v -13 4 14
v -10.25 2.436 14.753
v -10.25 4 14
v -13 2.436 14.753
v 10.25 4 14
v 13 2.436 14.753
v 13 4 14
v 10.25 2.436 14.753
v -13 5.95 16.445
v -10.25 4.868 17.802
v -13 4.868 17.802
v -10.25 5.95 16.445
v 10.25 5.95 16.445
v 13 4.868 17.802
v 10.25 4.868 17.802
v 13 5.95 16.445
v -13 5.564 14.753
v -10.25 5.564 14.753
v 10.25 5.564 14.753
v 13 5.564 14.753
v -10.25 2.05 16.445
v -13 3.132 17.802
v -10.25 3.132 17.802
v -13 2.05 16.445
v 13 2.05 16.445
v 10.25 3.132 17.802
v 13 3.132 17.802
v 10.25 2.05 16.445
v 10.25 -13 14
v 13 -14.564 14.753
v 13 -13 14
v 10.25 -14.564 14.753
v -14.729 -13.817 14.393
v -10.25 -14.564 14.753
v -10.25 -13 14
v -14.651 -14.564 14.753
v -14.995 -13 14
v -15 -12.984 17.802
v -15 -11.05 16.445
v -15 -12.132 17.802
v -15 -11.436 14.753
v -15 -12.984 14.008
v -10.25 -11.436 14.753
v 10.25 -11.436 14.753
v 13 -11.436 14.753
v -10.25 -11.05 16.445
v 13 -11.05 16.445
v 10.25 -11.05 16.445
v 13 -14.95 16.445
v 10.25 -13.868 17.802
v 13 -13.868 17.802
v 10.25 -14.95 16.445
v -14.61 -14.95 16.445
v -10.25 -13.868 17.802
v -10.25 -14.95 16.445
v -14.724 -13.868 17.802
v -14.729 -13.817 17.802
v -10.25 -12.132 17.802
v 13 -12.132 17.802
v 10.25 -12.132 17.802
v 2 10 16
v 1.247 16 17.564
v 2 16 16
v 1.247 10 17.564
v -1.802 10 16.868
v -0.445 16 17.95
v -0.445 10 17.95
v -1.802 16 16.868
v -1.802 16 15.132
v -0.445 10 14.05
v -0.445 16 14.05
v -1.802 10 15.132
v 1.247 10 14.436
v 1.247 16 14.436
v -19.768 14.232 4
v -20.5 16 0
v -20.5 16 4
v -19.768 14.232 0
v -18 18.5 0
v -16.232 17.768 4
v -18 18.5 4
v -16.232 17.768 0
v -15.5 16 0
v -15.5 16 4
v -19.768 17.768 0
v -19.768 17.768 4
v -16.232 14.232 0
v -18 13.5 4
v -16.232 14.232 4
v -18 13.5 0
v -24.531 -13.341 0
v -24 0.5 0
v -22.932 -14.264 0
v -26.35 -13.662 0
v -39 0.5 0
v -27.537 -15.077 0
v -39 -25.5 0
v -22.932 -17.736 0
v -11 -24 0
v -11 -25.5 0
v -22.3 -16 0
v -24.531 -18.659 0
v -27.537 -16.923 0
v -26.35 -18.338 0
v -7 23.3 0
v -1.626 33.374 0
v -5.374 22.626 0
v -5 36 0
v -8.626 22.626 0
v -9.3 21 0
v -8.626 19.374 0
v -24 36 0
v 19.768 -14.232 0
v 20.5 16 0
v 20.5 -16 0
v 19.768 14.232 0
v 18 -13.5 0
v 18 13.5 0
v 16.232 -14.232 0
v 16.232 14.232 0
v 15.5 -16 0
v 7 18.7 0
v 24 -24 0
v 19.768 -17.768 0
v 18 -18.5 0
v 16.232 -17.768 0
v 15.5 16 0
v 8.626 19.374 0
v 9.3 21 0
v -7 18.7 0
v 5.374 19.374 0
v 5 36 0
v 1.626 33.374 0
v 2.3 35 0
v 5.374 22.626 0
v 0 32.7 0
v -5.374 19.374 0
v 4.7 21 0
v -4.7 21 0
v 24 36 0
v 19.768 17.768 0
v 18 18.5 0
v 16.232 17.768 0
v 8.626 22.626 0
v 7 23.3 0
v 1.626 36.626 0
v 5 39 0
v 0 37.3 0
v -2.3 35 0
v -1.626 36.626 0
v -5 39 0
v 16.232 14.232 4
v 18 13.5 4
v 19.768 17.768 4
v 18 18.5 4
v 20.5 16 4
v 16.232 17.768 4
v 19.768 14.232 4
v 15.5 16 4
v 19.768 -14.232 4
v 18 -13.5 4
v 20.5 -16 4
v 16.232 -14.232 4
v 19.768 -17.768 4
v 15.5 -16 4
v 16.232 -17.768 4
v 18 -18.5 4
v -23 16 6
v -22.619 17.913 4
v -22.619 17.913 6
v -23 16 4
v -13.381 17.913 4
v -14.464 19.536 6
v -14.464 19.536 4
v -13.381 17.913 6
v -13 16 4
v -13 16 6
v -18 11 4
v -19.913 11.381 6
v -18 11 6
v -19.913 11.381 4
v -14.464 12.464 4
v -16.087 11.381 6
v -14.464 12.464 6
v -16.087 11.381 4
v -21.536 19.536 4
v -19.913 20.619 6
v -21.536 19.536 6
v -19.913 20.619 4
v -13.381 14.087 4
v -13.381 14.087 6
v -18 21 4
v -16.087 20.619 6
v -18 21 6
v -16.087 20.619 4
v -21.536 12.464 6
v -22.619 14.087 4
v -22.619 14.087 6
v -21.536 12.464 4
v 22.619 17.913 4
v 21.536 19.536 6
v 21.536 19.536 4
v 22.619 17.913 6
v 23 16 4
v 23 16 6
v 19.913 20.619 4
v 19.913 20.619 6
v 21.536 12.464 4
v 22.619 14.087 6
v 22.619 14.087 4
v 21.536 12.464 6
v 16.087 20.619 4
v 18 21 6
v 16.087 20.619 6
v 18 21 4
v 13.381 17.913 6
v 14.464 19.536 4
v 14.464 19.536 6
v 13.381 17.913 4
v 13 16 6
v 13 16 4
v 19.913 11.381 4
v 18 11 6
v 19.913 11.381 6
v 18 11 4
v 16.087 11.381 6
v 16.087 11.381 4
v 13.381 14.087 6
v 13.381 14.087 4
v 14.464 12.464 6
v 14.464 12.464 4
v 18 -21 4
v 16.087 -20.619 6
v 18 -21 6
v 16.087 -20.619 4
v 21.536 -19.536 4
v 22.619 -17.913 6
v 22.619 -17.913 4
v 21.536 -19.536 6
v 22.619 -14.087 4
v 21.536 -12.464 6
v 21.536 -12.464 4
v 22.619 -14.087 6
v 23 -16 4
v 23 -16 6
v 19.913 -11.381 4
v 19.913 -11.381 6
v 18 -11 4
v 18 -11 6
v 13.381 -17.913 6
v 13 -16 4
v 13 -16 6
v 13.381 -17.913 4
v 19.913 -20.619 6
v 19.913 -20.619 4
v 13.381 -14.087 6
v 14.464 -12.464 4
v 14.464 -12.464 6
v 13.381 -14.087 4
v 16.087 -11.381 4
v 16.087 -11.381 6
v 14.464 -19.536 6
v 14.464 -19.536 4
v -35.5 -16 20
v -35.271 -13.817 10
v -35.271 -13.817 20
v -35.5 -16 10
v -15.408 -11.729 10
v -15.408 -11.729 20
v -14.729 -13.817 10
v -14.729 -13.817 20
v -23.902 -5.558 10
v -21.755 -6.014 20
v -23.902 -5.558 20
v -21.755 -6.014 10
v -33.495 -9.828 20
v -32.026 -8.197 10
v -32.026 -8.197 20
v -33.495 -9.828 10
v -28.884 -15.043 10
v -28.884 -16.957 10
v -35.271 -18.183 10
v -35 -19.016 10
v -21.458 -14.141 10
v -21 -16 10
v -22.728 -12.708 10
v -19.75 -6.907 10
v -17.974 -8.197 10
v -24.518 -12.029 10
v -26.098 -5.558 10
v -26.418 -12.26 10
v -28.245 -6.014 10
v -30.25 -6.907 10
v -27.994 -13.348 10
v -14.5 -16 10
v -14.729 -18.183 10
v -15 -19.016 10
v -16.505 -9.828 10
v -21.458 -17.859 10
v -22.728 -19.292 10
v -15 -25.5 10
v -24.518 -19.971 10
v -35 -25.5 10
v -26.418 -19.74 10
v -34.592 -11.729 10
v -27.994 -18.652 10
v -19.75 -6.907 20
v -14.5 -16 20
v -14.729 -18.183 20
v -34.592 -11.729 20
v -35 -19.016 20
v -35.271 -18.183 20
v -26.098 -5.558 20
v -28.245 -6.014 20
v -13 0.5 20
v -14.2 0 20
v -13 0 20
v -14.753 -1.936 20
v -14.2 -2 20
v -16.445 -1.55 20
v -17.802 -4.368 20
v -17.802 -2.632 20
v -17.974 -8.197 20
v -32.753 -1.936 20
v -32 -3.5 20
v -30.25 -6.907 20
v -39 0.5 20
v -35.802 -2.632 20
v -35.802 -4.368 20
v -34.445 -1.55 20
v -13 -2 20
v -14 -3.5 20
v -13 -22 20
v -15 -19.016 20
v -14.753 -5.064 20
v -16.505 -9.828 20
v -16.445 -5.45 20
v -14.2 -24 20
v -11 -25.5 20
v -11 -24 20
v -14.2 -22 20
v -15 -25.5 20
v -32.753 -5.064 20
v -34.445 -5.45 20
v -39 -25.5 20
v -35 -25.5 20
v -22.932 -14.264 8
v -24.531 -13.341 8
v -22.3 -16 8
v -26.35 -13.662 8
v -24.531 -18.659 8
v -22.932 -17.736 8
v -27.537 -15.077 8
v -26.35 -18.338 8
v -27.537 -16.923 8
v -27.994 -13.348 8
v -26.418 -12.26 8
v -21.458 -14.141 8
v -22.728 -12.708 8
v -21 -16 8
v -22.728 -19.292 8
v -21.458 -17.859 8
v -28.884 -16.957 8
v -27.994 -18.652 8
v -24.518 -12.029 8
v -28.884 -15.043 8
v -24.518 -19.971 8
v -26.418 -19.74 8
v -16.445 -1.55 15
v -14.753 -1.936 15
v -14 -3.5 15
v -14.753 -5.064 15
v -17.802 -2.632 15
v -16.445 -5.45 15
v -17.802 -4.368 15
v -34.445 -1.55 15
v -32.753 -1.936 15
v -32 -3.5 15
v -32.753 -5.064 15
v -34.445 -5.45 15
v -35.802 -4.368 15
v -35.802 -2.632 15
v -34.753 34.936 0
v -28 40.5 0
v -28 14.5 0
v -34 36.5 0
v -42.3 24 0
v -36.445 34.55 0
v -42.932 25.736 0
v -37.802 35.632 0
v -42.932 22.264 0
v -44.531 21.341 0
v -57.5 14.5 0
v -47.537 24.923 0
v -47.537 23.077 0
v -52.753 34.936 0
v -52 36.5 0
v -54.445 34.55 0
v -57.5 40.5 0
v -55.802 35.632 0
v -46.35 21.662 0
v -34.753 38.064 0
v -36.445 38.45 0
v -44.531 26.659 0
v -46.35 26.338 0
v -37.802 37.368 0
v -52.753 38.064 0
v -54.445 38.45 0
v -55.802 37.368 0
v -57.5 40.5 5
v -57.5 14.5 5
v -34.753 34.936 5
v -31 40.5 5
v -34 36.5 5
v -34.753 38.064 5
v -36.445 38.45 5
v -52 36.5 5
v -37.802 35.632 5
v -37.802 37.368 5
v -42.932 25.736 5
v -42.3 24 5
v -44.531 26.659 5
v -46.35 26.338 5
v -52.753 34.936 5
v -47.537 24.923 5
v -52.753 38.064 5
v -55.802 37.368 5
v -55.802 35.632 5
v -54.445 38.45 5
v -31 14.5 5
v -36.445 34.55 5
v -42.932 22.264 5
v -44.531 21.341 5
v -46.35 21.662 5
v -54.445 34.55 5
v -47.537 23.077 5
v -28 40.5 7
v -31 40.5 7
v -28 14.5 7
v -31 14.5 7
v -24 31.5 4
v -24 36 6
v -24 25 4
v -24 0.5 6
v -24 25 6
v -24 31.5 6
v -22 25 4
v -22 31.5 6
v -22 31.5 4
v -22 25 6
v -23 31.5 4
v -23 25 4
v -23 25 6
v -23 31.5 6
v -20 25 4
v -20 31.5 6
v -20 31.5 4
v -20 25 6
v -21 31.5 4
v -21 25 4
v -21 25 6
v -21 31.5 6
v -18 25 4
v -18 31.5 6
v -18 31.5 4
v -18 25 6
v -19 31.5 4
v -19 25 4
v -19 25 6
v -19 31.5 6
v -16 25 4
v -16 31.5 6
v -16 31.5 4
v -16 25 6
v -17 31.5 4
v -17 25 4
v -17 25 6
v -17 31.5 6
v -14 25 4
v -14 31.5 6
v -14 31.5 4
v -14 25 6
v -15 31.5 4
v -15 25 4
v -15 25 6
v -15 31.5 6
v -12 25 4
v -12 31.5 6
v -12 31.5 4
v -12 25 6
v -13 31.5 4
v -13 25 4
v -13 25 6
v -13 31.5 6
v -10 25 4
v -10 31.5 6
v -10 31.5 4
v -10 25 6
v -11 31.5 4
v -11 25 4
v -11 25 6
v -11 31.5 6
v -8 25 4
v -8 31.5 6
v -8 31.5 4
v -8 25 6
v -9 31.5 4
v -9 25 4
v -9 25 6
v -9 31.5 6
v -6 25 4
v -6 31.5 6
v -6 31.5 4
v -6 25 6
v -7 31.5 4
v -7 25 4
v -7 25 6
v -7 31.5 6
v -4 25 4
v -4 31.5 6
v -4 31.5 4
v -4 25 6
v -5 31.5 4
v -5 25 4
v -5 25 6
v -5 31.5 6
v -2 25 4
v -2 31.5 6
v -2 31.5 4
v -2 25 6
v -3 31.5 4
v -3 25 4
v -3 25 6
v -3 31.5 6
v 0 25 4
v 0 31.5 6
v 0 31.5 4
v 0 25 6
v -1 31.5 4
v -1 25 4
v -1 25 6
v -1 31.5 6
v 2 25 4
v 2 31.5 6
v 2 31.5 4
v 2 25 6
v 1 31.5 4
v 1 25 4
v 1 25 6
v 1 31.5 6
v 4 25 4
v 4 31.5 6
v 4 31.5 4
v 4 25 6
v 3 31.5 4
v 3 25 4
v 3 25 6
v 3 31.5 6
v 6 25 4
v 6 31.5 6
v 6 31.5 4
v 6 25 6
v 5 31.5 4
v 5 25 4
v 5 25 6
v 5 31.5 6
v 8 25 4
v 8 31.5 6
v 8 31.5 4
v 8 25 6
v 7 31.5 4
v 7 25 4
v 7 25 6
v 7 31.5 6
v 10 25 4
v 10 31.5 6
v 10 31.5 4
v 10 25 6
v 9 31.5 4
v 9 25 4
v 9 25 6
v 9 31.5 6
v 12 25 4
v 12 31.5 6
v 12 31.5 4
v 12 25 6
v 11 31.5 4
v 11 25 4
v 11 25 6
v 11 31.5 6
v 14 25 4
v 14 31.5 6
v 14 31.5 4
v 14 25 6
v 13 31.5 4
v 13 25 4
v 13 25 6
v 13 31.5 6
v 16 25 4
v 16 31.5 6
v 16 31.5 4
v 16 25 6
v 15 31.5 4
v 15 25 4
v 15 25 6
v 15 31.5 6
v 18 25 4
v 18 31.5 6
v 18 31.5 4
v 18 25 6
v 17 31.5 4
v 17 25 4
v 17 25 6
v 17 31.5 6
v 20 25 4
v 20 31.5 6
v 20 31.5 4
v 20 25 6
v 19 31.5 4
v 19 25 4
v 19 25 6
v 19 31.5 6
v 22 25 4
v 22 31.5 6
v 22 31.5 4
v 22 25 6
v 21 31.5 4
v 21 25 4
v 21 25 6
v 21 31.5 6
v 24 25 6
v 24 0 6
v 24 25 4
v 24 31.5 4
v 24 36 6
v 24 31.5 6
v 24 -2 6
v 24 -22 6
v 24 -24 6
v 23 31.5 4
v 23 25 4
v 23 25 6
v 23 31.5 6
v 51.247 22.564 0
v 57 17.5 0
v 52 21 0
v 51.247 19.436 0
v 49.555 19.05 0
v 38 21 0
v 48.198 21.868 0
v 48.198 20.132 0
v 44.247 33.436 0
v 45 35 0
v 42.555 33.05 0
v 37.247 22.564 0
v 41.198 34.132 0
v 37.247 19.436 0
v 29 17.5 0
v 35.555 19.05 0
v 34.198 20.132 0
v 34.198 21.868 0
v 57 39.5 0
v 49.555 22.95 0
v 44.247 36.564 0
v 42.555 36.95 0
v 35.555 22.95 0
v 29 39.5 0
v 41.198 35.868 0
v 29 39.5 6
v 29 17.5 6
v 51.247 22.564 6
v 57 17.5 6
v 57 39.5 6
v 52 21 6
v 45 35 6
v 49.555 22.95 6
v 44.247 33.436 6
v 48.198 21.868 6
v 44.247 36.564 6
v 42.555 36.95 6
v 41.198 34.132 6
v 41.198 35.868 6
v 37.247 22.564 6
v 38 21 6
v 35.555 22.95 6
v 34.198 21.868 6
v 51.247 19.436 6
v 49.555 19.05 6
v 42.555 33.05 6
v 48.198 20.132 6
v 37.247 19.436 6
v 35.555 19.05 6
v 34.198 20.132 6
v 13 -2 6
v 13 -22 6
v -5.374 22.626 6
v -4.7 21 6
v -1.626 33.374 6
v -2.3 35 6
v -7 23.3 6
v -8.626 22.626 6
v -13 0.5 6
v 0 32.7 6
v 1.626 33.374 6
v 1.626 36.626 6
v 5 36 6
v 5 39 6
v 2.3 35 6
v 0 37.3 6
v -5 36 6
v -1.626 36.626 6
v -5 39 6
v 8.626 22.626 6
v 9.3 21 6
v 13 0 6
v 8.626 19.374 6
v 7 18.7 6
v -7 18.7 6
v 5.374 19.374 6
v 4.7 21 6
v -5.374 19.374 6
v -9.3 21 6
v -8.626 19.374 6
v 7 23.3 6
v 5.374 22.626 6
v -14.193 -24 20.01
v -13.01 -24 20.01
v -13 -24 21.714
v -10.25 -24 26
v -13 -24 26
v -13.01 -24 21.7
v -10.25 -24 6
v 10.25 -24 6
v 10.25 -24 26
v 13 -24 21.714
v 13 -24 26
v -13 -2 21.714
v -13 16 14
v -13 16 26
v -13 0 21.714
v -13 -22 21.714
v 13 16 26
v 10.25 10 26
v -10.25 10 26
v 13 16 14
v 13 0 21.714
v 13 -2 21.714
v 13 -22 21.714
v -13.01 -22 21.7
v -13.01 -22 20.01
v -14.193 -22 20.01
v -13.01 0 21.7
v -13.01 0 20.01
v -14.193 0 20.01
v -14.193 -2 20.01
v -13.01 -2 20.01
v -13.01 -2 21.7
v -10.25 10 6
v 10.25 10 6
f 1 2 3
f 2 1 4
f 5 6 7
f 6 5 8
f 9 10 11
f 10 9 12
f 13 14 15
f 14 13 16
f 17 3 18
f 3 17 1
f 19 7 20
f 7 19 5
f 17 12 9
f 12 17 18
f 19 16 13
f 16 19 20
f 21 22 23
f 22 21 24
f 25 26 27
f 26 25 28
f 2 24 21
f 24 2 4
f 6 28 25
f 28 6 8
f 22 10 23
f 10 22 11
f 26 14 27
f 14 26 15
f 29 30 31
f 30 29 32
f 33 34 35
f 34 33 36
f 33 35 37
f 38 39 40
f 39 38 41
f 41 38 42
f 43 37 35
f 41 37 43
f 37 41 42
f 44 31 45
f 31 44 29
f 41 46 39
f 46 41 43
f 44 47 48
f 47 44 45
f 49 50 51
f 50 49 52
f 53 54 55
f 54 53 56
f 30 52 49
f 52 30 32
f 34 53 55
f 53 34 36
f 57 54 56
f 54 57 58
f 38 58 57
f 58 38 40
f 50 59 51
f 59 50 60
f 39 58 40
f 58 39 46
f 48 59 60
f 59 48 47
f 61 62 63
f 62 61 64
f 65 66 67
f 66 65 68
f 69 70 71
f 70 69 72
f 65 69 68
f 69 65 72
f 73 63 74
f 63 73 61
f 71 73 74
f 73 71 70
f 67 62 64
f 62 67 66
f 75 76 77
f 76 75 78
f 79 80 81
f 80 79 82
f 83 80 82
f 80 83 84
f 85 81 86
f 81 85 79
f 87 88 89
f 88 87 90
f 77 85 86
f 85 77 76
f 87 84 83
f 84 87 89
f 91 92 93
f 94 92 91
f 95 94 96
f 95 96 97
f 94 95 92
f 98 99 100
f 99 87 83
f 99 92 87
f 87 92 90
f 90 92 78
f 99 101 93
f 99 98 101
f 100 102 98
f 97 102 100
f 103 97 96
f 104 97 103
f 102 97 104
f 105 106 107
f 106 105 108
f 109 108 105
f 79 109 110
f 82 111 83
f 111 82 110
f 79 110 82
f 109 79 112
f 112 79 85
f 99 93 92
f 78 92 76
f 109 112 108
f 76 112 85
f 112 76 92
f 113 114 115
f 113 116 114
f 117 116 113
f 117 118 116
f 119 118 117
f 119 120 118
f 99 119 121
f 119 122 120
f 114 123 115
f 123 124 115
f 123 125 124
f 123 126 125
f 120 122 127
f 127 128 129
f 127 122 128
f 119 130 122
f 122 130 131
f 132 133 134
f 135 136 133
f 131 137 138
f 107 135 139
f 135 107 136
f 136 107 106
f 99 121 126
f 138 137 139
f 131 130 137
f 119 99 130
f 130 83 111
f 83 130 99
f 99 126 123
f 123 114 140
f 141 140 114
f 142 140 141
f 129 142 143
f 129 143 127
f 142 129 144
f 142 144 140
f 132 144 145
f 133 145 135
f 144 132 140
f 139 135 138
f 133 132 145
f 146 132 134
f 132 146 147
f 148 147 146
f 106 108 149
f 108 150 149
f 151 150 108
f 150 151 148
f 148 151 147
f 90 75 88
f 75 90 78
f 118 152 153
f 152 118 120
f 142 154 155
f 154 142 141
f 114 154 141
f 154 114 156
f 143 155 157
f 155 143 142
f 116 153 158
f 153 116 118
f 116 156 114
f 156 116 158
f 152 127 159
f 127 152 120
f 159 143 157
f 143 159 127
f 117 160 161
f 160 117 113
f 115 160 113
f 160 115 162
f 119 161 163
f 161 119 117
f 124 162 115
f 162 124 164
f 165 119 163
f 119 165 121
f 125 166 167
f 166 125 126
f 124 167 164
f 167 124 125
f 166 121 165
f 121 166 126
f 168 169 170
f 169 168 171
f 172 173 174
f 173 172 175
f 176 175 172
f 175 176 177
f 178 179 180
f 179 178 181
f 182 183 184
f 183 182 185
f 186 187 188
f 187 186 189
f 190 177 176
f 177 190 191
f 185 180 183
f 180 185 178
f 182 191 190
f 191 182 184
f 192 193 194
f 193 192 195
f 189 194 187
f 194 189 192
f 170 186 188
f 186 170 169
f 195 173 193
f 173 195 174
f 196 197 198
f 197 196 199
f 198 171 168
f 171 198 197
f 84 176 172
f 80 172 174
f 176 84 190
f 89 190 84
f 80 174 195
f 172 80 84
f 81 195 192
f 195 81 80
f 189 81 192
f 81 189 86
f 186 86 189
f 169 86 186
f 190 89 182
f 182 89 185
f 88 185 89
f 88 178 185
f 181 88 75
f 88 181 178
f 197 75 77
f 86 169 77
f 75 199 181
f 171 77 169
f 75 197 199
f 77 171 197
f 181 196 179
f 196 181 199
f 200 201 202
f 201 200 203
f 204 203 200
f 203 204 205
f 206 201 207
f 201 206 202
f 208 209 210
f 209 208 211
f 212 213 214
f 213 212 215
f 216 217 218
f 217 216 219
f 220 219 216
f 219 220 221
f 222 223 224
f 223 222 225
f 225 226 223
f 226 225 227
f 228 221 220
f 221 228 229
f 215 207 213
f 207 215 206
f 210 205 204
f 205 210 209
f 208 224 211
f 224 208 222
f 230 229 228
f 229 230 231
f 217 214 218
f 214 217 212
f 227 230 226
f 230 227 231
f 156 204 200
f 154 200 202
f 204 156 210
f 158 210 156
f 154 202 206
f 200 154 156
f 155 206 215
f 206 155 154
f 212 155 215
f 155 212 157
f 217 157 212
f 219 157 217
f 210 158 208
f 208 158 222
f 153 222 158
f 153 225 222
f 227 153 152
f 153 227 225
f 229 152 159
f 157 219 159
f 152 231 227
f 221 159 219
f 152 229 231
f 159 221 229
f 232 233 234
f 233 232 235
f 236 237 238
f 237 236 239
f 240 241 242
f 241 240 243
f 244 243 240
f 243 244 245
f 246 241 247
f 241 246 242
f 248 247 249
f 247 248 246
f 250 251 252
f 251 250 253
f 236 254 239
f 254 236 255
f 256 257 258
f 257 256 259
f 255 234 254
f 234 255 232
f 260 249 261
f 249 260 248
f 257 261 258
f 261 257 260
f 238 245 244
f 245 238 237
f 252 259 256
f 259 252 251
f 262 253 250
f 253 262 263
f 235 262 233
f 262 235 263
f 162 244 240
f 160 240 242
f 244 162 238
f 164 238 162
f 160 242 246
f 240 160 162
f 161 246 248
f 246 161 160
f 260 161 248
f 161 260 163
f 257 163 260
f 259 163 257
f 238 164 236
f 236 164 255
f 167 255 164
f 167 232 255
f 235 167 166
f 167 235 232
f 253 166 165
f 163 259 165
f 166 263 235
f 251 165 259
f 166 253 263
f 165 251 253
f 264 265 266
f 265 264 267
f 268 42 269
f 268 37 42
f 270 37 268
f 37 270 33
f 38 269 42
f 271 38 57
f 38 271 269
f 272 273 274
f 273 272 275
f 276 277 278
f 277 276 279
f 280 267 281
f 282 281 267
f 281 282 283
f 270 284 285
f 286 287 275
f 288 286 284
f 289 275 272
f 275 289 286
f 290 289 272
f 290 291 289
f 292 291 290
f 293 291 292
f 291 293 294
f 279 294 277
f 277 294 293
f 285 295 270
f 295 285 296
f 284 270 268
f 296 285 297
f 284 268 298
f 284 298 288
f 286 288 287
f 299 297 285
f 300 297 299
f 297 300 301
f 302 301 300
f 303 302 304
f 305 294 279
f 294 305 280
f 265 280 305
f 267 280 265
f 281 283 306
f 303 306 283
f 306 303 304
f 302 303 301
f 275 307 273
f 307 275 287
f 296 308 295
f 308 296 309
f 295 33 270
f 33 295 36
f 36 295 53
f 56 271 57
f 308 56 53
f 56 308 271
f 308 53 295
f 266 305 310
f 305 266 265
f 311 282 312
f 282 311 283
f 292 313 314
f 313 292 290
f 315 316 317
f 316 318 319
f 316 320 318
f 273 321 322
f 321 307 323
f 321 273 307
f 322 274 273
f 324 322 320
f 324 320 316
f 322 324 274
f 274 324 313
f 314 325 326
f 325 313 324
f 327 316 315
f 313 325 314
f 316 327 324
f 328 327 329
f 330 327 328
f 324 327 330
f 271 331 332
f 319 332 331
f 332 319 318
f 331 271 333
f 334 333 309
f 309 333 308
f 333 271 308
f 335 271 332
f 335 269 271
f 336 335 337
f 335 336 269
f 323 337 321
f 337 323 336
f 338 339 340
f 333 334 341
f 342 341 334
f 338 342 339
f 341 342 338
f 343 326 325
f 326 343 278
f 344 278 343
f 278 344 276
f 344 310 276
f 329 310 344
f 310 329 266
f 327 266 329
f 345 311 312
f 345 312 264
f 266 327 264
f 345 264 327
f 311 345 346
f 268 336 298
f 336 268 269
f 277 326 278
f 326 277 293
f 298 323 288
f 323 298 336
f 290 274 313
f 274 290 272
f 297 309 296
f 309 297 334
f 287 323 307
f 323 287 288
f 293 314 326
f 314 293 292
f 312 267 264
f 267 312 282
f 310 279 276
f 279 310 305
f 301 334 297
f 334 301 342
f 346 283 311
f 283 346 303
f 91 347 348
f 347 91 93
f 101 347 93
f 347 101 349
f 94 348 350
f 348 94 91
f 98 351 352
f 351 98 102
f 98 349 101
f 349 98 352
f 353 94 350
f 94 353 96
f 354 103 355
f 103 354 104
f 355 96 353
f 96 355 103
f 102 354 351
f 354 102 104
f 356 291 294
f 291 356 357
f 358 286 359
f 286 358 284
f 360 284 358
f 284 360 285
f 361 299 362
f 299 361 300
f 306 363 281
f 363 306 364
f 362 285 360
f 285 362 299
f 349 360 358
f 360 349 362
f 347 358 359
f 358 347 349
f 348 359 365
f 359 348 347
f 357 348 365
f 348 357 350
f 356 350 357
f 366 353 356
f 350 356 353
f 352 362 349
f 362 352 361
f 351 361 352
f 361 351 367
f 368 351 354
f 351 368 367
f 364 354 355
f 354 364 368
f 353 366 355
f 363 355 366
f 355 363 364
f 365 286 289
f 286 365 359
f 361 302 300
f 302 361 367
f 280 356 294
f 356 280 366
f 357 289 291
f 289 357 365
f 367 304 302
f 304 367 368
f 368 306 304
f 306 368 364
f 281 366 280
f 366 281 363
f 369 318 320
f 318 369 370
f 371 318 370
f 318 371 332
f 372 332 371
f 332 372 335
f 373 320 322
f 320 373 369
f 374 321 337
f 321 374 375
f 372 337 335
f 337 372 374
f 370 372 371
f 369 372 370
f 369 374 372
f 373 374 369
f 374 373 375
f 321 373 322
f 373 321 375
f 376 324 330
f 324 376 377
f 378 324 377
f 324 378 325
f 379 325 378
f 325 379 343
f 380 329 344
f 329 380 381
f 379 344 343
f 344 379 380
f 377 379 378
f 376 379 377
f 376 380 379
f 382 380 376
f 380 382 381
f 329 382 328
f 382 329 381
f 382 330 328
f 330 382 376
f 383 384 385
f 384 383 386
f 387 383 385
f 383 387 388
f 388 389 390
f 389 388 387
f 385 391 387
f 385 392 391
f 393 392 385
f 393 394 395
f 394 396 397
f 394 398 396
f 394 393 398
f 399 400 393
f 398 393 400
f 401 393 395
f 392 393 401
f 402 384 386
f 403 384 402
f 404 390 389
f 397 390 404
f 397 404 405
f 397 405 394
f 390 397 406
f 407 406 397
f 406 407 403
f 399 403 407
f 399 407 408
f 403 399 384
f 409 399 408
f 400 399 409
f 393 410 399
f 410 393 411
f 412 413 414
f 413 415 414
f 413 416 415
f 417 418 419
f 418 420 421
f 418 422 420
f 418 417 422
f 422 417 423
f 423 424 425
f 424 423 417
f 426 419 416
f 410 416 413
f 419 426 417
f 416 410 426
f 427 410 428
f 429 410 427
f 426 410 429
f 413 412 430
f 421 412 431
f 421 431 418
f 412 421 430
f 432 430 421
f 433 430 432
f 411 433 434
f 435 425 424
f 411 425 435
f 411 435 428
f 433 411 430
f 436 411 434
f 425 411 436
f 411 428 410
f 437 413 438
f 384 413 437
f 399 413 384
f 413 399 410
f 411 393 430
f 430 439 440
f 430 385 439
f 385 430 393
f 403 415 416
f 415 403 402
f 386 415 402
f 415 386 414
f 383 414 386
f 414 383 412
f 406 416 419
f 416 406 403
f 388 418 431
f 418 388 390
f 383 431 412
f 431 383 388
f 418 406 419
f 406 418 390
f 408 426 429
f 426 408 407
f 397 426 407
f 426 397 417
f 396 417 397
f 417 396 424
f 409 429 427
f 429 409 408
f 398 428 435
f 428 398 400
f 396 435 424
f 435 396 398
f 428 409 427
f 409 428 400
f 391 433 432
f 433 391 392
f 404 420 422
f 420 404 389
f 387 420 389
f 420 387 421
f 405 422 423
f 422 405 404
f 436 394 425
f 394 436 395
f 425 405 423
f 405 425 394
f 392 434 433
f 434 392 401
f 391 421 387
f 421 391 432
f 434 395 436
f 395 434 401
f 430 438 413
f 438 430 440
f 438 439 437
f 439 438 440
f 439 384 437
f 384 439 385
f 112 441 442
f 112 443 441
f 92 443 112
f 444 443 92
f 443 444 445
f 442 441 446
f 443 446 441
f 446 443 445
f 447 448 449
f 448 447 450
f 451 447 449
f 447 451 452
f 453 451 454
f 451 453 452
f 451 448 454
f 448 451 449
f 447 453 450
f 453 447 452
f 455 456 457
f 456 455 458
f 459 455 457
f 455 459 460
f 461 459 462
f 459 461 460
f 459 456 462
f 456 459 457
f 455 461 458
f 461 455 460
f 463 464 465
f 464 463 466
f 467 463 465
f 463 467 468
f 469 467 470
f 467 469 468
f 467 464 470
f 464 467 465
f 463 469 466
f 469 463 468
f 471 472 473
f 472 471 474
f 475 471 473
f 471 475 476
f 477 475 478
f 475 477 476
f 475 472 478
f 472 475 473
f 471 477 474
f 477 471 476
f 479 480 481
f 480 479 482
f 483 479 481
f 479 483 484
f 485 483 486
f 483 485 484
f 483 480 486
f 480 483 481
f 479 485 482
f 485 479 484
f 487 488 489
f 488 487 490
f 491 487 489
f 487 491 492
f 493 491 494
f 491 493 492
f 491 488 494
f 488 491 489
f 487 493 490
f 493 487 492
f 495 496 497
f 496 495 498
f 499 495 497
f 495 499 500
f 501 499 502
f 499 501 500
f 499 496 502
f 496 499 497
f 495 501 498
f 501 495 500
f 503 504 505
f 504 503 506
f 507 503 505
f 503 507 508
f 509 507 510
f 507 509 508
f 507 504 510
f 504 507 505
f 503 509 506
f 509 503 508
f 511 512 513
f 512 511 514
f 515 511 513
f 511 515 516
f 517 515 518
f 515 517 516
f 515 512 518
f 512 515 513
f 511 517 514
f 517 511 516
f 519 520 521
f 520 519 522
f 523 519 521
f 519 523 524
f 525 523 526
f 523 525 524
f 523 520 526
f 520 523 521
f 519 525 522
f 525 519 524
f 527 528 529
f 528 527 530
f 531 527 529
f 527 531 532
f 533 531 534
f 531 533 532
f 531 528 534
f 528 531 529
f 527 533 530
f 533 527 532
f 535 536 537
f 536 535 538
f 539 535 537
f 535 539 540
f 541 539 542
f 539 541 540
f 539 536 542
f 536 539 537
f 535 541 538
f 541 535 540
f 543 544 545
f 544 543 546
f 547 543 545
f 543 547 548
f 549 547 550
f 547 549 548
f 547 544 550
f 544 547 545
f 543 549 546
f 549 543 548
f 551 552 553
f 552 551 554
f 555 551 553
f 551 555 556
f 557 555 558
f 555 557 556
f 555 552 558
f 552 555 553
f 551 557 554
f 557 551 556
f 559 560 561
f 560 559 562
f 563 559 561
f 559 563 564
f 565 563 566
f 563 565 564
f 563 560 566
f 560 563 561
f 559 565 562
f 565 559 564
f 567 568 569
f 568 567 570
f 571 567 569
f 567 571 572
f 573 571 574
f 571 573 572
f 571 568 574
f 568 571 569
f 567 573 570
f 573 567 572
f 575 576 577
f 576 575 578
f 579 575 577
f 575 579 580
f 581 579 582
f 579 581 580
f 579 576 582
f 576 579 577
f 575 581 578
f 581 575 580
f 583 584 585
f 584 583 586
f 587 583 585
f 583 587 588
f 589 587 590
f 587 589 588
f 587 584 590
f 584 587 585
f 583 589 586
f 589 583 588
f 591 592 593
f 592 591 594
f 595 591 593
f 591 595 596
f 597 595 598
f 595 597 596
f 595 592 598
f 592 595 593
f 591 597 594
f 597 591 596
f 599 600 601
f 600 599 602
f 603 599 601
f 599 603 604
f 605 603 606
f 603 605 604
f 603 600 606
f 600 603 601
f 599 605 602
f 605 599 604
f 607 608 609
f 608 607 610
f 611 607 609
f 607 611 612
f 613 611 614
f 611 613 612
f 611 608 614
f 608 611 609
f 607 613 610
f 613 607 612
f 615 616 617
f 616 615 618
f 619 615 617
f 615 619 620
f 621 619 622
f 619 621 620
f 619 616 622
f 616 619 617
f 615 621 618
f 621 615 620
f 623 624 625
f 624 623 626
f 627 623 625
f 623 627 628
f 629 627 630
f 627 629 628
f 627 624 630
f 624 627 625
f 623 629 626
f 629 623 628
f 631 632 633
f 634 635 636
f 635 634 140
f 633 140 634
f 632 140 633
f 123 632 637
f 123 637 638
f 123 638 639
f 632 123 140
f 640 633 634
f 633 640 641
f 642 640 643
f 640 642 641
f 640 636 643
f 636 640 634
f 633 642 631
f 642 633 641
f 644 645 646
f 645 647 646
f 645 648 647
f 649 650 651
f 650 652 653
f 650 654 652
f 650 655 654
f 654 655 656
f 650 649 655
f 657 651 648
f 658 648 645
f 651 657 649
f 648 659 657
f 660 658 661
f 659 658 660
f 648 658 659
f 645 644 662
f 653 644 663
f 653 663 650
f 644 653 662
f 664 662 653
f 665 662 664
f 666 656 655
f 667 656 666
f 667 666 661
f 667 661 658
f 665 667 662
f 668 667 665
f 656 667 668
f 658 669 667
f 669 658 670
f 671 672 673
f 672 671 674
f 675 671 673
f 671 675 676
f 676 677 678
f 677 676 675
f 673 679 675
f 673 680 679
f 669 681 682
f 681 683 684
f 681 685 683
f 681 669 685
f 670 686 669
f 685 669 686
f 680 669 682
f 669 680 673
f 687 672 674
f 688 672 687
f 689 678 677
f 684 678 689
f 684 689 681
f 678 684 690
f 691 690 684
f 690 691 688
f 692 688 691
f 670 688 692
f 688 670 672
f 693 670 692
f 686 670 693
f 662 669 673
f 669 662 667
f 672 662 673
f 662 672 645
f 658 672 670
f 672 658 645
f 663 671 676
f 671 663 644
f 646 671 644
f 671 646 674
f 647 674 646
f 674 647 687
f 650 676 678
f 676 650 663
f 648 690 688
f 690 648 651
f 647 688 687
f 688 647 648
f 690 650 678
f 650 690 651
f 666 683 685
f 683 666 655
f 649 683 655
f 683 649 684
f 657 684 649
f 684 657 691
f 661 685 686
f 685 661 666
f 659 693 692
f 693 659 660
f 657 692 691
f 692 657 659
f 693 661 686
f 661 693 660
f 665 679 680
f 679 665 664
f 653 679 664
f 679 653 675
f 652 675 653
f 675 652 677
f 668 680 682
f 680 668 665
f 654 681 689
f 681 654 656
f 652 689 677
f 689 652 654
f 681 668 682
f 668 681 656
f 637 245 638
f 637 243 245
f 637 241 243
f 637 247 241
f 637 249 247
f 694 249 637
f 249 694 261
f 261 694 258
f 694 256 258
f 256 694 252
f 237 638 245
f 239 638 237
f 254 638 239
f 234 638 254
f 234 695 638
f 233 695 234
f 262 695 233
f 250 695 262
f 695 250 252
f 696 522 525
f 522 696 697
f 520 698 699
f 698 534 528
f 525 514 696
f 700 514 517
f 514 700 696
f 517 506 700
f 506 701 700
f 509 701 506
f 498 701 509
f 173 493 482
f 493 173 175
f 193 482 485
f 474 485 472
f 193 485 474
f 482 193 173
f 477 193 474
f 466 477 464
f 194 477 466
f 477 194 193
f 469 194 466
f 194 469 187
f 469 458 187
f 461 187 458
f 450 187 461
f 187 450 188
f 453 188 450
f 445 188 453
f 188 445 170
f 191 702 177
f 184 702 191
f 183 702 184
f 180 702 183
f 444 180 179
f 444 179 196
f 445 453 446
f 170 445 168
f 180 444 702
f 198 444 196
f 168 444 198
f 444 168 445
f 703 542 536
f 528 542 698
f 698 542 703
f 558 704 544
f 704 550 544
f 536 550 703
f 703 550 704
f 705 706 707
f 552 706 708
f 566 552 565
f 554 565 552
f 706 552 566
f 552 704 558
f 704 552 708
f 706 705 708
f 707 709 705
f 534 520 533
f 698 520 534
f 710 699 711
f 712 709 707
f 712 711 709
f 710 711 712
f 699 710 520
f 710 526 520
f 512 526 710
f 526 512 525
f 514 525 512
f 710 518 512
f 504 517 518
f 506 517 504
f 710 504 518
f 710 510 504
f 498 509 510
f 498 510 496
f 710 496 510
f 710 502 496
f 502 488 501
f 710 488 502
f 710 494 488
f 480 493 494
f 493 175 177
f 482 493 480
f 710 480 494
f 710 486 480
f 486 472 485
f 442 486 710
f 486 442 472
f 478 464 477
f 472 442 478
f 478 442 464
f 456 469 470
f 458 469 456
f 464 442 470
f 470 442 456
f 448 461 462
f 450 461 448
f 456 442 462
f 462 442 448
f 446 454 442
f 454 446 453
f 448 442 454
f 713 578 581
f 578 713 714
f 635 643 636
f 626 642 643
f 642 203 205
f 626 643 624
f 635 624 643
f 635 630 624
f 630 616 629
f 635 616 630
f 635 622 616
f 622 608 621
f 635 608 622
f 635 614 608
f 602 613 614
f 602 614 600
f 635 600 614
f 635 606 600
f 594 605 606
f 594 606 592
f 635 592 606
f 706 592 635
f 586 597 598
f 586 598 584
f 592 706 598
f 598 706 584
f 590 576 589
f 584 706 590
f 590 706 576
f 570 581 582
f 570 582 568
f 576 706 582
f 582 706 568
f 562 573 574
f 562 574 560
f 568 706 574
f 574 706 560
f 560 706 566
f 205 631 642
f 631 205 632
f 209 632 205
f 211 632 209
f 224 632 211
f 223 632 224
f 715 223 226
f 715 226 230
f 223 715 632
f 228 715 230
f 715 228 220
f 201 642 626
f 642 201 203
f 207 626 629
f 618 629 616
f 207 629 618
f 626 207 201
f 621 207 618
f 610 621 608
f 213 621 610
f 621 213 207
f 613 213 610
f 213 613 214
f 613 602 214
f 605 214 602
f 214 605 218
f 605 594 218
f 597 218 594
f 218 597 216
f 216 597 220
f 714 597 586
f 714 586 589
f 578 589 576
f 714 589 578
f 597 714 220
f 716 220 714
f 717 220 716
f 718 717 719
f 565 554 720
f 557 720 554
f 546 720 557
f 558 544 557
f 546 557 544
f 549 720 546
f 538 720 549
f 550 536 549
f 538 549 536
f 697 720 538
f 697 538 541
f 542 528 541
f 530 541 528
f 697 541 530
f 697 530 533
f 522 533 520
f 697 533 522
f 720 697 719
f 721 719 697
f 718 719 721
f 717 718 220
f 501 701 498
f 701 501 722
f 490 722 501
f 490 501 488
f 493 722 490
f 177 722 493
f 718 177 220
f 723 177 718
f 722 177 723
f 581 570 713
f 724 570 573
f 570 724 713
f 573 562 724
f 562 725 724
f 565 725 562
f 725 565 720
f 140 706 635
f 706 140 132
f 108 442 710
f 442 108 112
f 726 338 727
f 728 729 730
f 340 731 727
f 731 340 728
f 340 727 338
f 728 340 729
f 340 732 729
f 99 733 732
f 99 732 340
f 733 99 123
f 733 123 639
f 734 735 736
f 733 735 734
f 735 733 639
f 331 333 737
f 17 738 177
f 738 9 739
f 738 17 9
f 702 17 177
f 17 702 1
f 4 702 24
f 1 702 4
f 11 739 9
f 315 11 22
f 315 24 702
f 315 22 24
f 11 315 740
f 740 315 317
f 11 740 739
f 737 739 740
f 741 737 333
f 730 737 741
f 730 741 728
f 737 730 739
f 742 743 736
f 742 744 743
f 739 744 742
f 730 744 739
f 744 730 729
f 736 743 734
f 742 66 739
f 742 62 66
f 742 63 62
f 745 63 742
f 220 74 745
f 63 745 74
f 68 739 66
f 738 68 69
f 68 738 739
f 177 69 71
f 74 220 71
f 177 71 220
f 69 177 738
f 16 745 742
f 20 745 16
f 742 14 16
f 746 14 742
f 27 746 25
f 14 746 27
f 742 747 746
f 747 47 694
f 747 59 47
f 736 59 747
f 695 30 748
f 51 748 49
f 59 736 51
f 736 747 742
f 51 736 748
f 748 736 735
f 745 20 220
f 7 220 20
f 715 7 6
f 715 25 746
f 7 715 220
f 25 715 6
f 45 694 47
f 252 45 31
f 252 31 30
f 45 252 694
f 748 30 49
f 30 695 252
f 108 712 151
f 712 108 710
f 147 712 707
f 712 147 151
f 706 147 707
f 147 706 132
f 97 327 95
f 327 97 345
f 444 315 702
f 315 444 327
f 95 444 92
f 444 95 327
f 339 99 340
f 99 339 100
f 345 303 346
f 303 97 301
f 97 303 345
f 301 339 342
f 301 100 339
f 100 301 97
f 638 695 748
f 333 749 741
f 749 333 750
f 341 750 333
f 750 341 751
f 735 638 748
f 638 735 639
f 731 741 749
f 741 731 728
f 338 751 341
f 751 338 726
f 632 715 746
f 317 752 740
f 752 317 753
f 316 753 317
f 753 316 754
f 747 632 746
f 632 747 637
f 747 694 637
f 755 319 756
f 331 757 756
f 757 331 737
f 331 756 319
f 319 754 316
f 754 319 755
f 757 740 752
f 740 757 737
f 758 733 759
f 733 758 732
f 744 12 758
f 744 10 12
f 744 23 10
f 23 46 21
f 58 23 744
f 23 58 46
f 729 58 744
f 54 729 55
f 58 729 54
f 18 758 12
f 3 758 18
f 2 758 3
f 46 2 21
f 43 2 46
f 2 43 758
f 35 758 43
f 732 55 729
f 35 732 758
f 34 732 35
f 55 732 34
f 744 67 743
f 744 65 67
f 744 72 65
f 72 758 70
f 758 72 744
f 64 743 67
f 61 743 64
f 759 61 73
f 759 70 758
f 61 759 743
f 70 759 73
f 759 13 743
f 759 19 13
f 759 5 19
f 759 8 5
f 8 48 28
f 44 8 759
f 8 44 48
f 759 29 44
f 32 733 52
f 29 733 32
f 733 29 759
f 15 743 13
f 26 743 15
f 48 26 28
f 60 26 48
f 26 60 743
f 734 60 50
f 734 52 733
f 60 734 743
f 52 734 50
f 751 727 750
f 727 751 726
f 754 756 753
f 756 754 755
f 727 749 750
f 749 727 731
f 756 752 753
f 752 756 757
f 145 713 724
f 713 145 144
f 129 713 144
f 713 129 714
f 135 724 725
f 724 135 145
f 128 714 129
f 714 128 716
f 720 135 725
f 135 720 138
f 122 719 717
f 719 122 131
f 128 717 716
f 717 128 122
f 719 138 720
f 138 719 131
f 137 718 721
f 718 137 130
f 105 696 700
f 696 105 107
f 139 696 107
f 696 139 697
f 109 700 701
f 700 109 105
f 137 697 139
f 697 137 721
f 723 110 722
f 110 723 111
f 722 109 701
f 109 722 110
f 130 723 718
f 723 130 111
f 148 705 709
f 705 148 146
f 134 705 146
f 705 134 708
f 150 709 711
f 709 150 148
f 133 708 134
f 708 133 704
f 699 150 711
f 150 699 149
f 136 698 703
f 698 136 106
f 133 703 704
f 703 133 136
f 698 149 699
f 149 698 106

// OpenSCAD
//X Gantry non-mirror side

difference(){
    body();
    Carrage_Mount();
    Screw_Pockets();
    Screws();
    
    //2020 pocket
    translate([0,-10,6])linear_extrude(22){square([20.5,40],center=true);} 
    //Clean supports
    translate([-23.01,-9,20.01])linear_extrude(5){square([20,30],center=true);}       
    Screws();
    BeltPulleyPocket();
    ScrewTopOfBeltPulley();
    BeltGrooves();
    
    //Heat set insert holes for belt
    translate([7,21,0]){cylinder(30,2.3,2.3);}
    translate([-7,21,0]){cylinder(30,2.3,2.3);} 
    translate([0,35,0]){cylinder(30,2.3,2.3);} 
}

PulleyCap();
BeltCap();

module BeltCap(){
    x = 43;
    y = 00;
    
    difference(){
        translate([x,28.5,0])linear_extrude(6){square([28,22],center=true);}
      
        translate([7+x,21+y,0]){cylinder(30,2,2);}
        translate([-7+x,21+y,0]){cylinder(30,2,2);} 
        translate([0+x,35+y,0]){cylinder(30,2,2);} 
}
}

module PulleyCap(){
    difference(){
        translate([-43.5,-12.5+40,0])linear_extrude(5){square([28,26],center=true);}
        translate([-16-20,-3.5+40,0]){cylinder(30,2,2);}
        translate([-34-20,-3.5+40,0]){cylinder(30,2,2);} 
        translate([-25-20,-16+40,0]){cylinder(30,2.7,2.7);}
    }
    translate([-29.5,-12.5+40,0])linear_extrude(7){square([3,26],center=true);}
}

module BeltGrooves(){
    for(i = [0:25]){
        translate([(2*i)-25,25,4]){cube([1,6.5,6]);}
    }
}

//Holes for the heat set screws
module ScrewTopOfBeltPulley(){
    translate([-16,-3.5,15]){cylinder(30,2,2);}
    translate([-34,-3.5,15]){cylinder(30,2,2);}
}

module BeltPulleyPocket(){
    r = 10.5;
    x = -25;
    y = -16;
    z = 10;
    translate([x,y,z]){cylinder(10,r,r);}
    translate([(x-10),(y-20),z]){cube([20,20,10]);}
    translate([x,y,0]){cylinder(30,2.7,2.7);}
    translate([x,y,8]){cylinder(30,4,4);}
}

module body(){
    //Base plate
    translate([0,6,0])linear_extrude(6){square([48,60],center=true);}
    //2020 holder
    translate([0,-4,6])linear_extrude(20){square([26,40],center=true);}

    translate([0,35,0])linear_extrude(6){square([10,8],center=true);}


    //Pulley cube
    translate([-25,-12.5,0])linear_extrude(20){square([28,26],center=true);}
      
    Supports(-22);
    Supports(0);
}

module Supports(y){
    x = 24;
    z = 26;
    
    points = [
    [-x,y,6],       //0
    [x,y,6],        //1
    [x,(y-2),6],    //2
    [-x,(y-2),6],   //3
    [-10,y,z],      //4
    [10,y,z],       //5
    [10,(y-2),z],   //6
    [-10,(y-2),z]]; //7
    faces=[
    [0,1,2,3],  // bottom
    [4,5,1,0],  // front
    [7,6,5,4],  // top
    [5,6,2,1],  // right
    [6,7,3,2],  // back
    [7,4,0,3]]; // left
    
    polyhedron(points, faces);
}

module Screws(){
    r = 2;
    translate([-15,4,16])rotate(a=[0,90,0]){cylinder(30,r,r);}
    translate([-15,-13,16])rotate(a=[0,90,0]){cylinder(30,r,r);}
    translate([0,20,16])rotate(a=[90,0,0]){cylinder(30,r,r);}
}

module Carrage_Mount(){
    translate([-18,16]){cylinder(10,2.5,2.5);}
//    translate([-18,-16]){cylinder(10,2.5,2.5);}
    translate([18,16]){cylinder(10,2.5,2.5);}
    translate([18,-16]){cylinder(10,2.5,2.5);}
}

module Screw_Pockets(){
    r = 5;
    translate([-18,16,4]){cylinder(10,r,r);}
//    translate([-18,-16,4]){cylinder(10,r,r);}
    translate([18,16,4]){cylinder(10,r,r);}
    translate([18,-16,4]){cylinder(10,r,r);}
}
